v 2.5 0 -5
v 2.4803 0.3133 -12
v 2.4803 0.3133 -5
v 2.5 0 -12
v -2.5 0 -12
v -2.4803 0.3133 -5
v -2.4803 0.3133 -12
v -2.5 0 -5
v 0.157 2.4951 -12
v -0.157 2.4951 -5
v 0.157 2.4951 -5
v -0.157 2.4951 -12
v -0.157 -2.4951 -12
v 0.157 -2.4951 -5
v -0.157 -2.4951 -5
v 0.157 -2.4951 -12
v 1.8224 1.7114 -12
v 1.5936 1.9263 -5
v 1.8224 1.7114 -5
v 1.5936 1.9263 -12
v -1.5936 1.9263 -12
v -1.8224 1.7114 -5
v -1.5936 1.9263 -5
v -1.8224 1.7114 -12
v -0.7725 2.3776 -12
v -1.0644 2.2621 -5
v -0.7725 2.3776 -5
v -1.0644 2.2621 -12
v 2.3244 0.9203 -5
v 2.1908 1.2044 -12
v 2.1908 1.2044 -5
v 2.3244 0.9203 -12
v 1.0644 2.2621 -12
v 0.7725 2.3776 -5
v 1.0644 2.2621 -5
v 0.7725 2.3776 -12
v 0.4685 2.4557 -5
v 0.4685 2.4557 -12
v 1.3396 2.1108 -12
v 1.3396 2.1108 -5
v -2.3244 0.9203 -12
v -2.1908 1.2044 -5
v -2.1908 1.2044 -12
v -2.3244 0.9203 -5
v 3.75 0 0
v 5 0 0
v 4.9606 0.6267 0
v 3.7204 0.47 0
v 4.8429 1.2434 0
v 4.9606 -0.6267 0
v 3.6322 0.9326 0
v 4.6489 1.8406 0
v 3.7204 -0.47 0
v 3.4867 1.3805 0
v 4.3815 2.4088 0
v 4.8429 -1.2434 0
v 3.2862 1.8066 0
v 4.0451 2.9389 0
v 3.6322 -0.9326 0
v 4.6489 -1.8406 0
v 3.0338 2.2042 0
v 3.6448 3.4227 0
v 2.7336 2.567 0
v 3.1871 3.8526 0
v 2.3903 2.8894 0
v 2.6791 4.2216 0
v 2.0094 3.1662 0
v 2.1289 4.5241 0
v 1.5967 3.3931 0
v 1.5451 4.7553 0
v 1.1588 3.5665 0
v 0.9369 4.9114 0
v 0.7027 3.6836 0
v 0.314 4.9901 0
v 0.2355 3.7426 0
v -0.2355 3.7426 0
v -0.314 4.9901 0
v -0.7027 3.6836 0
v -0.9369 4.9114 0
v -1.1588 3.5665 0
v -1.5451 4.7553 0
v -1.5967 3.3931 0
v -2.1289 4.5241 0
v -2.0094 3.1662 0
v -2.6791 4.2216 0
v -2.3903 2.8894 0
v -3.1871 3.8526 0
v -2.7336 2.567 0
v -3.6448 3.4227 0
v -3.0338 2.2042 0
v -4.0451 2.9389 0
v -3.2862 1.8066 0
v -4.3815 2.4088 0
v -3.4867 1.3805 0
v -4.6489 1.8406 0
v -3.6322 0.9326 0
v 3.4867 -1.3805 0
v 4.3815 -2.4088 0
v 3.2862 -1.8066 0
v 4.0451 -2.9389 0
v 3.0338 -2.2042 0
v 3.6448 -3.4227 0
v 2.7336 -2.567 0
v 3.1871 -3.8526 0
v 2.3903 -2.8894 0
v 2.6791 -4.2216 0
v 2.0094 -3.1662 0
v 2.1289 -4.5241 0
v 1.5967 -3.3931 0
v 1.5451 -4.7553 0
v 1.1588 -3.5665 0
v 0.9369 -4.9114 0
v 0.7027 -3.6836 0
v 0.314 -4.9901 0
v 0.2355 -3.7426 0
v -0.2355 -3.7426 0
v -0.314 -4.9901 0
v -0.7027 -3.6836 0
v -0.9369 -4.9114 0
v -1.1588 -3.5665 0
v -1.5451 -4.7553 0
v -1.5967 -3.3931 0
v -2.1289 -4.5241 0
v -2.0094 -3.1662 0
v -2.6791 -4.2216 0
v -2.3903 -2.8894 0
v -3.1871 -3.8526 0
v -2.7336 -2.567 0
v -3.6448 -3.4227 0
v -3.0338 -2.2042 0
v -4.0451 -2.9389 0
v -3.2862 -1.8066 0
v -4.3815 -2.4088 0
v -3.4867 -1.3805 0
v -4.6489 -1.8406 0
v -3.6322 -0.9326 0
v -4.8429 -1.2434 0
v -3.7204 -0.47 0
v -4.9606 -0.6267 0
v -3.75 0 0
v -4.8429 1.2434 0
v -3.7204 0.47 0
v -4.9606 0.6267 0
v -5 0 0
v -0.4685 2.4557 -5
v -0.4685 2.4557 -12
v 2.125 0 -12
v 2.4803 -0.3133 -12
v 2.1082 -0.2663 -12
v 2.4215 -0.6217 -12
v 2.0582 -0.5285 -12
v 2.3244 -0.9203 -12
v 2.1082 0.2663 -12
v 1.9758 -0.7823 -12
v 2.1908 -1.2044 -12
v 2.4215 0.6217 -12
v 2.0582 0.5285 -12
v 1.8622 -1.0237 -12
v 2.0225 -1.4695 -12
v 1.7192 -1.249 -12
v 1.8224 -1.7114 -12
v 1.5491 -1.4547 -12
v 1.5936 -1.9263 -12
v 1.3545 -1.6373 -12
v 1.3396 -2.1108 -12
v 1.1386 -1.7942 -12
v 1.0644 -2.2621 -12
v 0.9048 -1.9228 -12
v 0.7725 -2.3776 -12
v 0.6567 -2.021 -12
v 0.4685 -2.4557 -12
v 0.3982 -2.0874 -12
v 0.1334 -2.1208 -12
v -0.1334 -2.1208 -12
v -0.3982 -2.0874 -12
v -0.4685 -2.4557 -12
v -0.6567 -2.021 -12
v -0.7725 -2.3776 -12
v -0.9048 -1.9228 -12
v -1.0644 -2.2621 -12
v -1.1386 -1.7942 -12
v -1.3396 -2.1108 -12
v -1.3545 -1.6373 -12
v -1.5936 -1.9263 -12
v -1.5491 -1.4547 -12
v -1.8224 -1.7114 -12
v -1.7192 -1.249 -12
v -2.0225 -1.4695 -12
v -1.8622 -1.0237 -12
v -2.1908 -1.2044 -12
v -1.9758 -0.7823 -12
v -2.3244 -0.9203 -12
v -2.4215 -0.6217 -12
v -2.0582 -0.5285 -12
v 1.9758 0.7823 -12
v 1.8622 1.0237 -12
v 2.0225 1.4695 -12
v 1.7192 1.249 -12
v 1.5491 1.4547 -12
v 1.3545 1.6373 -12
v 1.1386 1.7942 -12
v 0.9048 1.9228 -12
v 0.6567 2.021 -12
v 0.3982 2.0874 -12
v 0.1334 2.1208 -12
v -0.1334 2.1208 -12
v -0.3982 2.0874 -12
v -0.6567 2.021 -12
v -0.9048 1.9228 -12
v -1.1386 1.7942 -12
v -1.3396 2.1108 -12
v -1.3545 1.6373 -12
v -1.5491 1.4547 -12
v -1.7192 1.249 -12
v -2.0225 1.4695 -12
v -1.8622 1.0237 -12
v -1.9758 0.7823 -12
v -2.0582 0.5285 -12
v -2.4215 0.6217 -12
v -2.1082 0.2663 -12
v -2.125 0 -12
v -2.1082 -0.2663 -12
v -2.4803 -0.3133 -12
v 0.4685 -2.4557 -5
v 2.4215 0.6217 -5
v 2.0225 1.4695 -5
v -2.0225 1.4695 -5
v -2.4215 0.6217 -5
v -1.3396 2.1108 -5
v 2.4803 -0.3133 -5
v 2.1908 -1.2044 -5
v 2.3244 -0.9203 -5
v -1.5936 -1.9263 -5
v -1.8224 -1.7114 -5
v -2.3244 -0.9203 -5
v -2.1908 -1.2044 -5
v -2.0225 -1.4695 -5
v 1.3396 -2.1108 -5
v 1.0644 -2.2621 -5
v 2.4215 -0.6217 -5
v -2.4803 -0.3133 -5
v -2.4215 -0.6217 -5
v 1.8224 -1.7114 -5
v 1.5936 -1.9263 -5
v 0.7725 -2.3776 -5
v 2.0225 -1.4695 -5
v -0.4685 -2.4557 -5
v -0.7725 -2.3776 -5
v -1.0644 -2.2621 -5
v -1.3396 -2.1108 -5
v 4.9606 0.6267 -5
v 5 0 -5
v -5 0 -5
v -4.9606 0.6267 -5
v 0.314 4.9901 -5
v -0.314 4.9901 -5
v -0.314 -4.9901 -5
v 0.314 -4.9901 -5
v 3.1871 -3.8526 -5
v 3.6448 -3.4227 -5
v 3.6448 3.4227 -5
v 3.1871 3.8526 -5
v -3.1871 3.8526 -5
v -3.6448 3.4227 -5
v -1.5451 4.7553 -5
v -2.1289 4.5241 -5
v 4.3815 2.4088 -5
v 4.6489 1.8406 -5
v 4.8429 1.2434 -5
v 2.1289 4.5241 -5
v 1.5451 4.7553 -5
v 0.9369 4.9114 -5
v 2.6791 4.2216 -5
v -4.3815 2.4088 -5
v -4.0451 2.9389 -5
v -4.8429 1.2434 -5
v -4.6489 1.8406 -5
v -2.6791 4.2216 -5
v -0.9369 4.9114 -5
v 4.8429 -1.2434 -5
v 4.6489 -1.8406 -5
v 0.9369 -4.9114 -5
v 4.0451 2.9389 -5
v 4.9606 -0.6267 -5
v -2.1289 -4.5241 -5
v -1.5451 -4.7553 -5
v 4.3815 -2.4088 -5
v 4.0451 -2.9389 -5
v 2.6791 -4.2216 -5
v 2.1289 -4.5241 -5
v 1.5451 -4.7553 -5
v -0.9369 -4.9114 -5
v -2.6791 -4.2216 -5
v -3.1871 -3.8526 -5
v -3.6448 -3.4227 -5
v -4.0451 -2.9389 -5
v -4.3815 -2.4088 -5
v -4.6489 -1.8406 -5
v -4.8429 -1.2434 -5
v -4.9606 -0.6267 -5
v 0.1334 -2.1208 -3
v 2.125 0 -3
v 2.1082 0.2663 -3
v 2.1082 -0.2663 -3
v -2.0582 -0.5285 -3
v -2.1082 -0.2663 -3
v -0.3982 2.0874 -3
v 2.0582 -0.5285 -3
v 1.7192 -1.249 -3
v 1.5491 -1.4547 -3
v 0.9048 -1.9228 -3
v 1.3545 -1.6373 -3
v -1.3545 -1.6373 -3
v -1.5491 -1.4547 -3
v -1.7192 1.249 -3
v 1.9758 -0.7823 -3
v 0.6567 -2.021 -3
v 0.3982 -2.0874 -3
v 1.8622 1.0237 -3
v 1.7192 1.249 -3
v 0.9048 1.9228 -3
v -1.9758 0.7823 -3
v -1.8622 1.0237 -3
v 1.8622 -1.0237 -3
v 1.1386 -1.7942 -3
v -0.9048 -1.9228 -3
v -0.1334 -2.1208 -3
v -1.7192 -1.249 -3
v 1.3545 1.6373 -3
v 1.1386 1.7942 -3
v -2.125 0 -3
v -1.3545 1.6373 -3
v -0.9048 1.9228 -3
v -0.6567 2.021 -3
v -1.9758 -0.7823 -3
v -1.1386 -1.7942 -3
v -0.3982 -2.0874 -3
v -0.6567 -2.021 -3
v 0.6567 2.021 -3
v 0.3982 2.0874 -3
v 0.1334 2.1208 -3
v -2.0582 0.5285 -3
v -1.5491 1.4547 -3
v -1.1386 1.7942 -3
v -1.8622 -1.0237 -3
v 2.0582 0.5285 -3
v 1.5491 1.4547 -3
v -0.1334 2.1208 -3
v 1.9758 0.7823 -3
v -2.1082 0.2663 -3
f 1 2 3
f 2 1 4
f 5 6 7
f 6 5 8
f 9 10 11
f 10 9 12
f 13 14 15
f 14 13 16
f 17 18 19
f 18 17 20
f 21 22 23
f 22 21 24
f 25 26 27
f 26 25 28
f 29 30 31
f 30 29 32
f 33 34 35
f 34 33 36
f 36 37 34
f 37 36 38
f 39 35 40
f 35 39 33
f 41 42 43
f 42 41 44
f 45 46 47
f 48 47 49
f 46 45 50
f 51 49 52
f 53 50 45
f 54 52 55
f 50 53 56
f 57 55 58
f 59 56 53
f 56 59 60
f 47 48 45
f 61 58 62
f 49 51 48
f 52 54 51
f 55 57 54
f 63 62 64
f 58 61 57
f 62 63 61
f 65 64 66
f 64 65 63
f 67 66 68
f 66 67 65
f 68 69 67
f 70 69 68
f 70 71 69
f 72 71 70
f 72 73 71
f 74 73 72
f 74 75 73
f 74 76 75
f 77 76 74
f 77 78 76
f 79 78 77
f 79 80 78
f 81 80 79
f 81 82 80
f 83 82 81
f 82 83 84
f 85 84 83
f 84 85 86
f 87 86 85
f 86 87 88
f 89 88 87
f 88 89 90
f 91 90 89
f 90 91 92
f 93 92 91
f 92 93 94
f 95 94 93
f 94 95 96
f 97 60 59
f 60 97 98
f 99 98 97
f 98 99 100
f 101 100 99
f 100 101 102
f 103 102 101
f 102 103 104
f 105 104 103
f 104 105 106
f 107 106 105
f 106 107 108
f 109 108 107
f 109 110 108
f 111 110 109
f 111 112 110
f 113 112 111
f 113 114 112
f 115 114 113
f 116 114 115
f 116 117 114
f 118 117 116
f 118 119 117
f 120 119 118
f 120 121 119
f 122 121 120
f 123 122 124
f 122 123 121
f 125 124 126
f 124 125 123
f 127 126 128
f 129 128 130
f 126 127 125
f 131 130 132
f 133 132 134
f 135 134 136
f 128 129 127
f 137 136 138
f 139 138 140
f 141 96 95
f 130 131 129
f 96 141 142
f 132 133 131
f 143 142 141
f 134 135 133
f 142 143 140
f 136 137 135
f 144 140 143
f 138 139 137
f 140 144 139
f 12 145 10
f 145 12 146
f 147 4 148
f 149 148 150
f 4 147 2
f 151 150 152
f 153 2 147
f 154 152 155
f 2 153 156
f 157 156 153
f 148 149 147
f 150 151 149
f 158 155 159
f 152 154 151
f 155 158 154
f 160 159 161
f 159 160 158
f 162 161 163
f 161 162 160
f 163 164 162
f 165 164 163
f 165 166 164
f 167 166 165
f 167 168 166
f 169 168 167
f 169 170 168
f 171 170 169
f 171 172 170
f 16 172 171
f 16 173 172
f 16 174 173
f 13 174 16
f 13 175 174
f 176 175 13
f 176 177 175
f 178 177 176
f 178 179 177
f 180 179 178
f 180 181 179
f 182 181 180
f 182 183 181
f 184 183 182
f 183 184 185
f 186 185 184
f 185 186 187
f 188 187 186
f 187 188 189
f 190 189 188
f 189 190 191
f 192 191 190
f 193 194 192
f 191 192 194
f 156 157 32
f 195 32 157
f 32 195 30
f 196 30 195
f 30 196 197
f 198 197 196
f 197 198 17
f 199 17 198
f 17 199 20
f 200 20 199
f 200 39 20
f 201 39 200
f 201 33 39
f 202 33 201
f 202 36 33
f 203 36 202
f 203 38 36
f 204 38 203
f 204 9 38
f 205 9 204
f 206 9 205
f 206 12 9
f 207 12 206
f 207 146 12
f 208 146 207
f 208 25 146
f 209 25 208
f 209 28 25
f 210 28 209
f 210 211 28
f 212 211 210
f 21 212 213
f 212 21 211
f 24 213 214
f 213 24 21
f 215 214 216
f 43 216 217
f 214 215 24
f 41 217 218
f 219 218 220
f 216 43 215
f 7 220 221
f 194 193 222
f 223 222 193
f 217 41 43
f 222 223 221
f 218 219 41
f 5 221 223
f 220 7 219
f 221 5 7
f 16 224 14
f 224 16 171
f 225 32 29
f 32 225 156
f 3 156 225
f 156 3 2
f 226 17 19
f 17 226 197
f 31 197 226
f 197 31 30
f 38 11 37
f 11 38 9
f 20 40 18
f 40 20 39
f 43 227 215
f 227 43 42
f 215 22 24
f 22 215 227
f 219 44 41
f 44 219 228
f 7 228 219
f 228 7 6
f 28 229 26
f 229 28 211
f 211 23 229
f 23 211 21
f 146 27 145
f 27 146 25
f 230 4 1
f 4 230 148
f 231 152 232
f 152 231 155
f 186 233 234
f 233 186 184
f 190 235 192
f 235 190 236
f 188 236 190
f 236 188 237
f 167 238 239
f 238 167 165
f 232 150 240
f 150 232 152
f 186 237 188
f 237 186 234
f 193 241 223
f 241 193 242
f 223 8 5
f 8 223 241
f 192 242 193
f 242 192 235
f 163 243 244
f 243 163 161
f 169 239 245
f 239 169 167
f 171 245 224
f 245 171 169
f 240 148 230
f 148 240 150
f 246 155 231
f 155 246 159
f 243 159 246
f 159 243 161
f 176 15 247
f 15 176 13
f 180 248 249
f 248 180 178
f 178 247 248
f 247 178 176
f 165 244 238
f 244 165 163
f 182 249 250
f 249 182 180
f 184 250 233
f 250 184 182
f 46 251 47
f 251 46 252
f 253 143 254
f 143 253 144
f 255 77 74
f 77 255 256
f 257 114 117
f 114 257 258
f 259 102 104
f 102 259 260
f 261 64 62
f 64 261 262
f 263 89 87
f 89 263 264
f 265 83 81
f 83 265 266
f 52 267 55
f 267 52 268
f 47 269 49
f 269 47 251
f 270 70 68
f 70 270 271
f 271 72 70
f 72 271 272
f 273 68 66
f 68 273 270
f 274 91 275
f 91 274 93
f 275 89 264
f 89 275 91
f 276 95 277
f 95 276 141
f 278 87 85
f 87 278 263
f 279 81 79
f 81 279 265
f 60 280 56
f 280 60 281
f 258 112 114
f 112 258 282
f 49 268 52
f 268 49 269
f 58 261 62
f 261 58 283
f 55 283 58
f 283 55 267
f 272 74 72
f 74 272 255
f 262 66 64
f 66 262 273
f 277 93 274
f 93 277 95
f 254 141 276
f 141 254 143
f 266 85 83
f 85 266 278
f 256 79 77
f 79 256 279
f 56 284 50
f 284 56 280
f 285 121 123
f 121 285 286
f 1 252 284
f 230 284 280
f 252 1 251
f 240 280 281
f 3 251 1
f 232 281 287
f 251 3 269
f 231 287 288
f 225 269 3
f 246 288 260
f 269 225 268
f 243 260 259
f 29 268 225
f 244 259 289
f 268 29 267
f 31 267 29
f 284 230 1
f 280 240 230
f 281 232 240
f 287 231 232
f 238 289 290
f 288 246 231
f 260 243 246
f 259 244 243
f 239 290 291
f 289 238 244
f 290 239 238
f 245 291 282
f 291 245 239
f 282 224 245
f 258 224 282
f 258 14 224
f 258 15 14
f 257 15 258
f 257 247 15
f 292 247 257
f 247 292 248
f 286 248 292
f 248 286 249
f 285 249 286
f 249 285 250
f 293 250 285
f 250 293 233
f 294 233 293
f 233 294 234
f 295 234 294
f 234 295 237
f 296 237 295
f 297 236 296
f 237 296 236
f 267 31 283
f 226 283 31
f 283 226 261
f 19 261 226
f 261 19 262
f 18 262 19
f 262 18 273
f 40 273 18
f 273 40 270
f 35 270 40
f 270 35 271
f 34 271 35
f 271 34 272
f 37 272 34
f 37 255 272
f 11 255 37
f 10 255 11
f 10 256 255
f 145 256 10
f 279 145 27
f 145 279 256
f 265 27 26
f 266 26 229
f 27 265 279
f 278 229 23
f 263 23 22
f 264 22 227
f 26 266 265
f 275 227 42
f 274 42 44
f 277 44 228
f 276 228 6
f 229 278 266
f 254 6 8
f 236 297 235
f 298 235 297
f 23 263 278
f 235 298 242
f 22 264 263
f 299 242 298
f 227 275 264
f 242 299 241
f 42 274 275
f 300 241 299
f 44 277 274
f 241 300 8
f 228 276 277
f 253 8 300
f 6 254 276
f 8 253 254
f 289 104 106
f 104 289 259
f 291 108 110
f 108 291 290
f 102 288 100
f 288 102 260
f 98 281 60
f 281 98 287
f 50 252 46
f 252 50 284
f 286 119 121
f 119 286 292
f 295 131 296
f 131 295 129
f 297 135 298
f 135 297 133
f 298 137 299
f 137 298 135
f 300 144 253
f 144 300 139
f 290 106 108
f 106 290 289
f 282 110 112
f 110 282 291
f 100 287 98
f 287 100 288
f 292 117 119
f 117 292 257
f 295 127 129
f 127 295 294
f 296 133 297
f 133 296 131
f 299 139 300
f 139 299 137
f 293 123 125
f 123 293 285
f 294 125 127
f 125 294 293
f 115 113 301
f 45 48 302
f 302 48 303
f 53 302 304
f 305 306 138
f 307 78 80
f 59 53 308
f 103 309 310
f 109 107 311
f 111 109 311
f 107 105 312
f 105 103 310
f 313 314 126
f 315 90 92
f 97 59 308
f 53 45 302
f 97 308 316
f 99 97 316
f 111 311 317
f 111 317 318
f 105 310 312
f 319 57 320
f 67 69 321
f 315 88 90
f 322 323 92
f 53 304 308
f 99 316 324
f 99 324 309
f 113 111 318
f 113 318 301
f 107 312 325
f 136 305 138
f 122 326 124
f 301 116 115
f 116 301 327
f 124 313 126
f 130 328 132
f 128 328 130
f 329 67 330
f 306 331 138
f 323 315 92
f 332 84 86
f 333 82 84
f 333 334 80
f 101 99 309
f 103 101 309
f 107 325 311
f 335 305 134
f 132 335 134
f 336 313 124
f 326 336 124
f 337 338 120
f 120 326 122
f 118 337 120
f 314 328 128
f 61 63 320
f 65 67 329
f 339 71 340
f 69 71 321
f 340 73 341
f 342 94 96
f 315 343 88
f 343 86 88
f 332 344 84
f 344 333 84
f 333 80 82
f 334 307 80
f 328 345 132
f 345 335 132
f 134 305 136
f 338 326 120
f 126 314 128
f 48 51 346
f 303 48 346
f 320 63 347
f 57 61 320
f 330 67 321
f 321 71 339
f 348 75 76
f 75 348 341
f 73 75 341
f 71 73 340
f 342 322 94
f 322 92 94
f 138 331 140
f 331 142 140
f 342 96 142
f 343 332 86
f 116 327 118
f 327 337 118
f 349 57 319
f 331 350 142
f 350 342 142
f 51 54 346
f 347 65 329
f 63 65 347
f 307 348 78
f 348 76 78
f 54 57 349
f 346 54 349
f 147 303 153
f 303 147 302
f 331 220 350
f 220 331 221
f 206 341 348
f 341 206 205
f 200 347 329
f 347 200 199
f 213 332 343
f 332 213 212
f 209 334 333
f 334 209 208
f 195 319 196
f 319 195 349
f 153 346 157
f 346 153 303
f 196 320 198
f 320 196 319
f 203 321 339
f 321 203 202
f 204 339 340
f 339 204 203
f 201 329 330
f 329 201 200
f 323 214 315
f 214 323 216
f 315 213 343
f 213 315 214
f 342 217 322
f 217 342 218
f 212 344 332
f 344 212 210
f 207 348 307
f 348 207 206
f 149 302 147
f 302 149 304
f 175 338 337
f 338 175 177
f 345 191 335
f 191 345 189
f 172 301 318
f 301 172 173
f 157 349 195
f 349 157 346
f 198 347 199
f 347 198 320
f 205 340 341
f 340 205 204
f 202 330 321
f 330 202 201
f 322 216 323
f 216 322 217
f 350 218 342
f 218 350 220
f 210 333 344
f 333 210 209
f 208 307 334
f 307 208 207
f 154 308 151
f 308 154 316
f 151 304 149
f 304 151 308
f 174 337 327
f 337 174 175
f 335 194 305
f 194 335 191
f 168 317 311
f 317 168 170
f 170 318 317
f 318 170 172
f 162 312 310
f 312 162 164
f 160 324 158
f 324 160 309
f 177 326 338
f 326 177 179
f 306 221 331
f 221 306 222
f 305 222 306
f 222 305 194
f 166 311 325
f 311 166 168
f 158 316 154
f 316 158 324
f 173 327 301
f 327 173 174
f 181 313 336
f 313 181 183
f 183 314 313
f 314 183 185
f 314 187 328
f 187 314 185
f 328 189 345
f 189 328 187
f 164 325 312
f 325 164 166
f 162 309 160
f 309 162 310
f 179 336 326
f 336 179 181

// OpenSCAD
$fn = 50;


difference() {
	union() {
		translate(v = [0, 0, -12.0000000000]) {
			cylinder(h = 12, r = 2.5000000000);
		}
		translate(v = [0, 0, -5.0000000000]) {
			cylinder(h = 5, r = 5.0000000000);
		}
	}
	union() {
		translate(v = [0, 0, 0]) {
			rotate(a = [0, 0, 0]) {
				difference() {
					union() {
						#translate(v = [0, 0, -12.0000000000]) {
							cylinder(h = 12, r = 2.0000000000);
						}
						#translate(v = [0, 0, -3]) {
							cylinder(h = 3, r = 2.5000000000, r1 = 2.1250000000, r2 = 3.7500000000);
						}
						#translate(v = [0, 0, -12.0000000000]) {
							cylinder(h = 12, r = 2.1250000000);
						}
						#translate(v = [0, 0, -12.0000000000]) {
							cylinder(h = 12, r = 2.0000000000);
						}
					}
					union();
				}
			}
		}
	}
}
